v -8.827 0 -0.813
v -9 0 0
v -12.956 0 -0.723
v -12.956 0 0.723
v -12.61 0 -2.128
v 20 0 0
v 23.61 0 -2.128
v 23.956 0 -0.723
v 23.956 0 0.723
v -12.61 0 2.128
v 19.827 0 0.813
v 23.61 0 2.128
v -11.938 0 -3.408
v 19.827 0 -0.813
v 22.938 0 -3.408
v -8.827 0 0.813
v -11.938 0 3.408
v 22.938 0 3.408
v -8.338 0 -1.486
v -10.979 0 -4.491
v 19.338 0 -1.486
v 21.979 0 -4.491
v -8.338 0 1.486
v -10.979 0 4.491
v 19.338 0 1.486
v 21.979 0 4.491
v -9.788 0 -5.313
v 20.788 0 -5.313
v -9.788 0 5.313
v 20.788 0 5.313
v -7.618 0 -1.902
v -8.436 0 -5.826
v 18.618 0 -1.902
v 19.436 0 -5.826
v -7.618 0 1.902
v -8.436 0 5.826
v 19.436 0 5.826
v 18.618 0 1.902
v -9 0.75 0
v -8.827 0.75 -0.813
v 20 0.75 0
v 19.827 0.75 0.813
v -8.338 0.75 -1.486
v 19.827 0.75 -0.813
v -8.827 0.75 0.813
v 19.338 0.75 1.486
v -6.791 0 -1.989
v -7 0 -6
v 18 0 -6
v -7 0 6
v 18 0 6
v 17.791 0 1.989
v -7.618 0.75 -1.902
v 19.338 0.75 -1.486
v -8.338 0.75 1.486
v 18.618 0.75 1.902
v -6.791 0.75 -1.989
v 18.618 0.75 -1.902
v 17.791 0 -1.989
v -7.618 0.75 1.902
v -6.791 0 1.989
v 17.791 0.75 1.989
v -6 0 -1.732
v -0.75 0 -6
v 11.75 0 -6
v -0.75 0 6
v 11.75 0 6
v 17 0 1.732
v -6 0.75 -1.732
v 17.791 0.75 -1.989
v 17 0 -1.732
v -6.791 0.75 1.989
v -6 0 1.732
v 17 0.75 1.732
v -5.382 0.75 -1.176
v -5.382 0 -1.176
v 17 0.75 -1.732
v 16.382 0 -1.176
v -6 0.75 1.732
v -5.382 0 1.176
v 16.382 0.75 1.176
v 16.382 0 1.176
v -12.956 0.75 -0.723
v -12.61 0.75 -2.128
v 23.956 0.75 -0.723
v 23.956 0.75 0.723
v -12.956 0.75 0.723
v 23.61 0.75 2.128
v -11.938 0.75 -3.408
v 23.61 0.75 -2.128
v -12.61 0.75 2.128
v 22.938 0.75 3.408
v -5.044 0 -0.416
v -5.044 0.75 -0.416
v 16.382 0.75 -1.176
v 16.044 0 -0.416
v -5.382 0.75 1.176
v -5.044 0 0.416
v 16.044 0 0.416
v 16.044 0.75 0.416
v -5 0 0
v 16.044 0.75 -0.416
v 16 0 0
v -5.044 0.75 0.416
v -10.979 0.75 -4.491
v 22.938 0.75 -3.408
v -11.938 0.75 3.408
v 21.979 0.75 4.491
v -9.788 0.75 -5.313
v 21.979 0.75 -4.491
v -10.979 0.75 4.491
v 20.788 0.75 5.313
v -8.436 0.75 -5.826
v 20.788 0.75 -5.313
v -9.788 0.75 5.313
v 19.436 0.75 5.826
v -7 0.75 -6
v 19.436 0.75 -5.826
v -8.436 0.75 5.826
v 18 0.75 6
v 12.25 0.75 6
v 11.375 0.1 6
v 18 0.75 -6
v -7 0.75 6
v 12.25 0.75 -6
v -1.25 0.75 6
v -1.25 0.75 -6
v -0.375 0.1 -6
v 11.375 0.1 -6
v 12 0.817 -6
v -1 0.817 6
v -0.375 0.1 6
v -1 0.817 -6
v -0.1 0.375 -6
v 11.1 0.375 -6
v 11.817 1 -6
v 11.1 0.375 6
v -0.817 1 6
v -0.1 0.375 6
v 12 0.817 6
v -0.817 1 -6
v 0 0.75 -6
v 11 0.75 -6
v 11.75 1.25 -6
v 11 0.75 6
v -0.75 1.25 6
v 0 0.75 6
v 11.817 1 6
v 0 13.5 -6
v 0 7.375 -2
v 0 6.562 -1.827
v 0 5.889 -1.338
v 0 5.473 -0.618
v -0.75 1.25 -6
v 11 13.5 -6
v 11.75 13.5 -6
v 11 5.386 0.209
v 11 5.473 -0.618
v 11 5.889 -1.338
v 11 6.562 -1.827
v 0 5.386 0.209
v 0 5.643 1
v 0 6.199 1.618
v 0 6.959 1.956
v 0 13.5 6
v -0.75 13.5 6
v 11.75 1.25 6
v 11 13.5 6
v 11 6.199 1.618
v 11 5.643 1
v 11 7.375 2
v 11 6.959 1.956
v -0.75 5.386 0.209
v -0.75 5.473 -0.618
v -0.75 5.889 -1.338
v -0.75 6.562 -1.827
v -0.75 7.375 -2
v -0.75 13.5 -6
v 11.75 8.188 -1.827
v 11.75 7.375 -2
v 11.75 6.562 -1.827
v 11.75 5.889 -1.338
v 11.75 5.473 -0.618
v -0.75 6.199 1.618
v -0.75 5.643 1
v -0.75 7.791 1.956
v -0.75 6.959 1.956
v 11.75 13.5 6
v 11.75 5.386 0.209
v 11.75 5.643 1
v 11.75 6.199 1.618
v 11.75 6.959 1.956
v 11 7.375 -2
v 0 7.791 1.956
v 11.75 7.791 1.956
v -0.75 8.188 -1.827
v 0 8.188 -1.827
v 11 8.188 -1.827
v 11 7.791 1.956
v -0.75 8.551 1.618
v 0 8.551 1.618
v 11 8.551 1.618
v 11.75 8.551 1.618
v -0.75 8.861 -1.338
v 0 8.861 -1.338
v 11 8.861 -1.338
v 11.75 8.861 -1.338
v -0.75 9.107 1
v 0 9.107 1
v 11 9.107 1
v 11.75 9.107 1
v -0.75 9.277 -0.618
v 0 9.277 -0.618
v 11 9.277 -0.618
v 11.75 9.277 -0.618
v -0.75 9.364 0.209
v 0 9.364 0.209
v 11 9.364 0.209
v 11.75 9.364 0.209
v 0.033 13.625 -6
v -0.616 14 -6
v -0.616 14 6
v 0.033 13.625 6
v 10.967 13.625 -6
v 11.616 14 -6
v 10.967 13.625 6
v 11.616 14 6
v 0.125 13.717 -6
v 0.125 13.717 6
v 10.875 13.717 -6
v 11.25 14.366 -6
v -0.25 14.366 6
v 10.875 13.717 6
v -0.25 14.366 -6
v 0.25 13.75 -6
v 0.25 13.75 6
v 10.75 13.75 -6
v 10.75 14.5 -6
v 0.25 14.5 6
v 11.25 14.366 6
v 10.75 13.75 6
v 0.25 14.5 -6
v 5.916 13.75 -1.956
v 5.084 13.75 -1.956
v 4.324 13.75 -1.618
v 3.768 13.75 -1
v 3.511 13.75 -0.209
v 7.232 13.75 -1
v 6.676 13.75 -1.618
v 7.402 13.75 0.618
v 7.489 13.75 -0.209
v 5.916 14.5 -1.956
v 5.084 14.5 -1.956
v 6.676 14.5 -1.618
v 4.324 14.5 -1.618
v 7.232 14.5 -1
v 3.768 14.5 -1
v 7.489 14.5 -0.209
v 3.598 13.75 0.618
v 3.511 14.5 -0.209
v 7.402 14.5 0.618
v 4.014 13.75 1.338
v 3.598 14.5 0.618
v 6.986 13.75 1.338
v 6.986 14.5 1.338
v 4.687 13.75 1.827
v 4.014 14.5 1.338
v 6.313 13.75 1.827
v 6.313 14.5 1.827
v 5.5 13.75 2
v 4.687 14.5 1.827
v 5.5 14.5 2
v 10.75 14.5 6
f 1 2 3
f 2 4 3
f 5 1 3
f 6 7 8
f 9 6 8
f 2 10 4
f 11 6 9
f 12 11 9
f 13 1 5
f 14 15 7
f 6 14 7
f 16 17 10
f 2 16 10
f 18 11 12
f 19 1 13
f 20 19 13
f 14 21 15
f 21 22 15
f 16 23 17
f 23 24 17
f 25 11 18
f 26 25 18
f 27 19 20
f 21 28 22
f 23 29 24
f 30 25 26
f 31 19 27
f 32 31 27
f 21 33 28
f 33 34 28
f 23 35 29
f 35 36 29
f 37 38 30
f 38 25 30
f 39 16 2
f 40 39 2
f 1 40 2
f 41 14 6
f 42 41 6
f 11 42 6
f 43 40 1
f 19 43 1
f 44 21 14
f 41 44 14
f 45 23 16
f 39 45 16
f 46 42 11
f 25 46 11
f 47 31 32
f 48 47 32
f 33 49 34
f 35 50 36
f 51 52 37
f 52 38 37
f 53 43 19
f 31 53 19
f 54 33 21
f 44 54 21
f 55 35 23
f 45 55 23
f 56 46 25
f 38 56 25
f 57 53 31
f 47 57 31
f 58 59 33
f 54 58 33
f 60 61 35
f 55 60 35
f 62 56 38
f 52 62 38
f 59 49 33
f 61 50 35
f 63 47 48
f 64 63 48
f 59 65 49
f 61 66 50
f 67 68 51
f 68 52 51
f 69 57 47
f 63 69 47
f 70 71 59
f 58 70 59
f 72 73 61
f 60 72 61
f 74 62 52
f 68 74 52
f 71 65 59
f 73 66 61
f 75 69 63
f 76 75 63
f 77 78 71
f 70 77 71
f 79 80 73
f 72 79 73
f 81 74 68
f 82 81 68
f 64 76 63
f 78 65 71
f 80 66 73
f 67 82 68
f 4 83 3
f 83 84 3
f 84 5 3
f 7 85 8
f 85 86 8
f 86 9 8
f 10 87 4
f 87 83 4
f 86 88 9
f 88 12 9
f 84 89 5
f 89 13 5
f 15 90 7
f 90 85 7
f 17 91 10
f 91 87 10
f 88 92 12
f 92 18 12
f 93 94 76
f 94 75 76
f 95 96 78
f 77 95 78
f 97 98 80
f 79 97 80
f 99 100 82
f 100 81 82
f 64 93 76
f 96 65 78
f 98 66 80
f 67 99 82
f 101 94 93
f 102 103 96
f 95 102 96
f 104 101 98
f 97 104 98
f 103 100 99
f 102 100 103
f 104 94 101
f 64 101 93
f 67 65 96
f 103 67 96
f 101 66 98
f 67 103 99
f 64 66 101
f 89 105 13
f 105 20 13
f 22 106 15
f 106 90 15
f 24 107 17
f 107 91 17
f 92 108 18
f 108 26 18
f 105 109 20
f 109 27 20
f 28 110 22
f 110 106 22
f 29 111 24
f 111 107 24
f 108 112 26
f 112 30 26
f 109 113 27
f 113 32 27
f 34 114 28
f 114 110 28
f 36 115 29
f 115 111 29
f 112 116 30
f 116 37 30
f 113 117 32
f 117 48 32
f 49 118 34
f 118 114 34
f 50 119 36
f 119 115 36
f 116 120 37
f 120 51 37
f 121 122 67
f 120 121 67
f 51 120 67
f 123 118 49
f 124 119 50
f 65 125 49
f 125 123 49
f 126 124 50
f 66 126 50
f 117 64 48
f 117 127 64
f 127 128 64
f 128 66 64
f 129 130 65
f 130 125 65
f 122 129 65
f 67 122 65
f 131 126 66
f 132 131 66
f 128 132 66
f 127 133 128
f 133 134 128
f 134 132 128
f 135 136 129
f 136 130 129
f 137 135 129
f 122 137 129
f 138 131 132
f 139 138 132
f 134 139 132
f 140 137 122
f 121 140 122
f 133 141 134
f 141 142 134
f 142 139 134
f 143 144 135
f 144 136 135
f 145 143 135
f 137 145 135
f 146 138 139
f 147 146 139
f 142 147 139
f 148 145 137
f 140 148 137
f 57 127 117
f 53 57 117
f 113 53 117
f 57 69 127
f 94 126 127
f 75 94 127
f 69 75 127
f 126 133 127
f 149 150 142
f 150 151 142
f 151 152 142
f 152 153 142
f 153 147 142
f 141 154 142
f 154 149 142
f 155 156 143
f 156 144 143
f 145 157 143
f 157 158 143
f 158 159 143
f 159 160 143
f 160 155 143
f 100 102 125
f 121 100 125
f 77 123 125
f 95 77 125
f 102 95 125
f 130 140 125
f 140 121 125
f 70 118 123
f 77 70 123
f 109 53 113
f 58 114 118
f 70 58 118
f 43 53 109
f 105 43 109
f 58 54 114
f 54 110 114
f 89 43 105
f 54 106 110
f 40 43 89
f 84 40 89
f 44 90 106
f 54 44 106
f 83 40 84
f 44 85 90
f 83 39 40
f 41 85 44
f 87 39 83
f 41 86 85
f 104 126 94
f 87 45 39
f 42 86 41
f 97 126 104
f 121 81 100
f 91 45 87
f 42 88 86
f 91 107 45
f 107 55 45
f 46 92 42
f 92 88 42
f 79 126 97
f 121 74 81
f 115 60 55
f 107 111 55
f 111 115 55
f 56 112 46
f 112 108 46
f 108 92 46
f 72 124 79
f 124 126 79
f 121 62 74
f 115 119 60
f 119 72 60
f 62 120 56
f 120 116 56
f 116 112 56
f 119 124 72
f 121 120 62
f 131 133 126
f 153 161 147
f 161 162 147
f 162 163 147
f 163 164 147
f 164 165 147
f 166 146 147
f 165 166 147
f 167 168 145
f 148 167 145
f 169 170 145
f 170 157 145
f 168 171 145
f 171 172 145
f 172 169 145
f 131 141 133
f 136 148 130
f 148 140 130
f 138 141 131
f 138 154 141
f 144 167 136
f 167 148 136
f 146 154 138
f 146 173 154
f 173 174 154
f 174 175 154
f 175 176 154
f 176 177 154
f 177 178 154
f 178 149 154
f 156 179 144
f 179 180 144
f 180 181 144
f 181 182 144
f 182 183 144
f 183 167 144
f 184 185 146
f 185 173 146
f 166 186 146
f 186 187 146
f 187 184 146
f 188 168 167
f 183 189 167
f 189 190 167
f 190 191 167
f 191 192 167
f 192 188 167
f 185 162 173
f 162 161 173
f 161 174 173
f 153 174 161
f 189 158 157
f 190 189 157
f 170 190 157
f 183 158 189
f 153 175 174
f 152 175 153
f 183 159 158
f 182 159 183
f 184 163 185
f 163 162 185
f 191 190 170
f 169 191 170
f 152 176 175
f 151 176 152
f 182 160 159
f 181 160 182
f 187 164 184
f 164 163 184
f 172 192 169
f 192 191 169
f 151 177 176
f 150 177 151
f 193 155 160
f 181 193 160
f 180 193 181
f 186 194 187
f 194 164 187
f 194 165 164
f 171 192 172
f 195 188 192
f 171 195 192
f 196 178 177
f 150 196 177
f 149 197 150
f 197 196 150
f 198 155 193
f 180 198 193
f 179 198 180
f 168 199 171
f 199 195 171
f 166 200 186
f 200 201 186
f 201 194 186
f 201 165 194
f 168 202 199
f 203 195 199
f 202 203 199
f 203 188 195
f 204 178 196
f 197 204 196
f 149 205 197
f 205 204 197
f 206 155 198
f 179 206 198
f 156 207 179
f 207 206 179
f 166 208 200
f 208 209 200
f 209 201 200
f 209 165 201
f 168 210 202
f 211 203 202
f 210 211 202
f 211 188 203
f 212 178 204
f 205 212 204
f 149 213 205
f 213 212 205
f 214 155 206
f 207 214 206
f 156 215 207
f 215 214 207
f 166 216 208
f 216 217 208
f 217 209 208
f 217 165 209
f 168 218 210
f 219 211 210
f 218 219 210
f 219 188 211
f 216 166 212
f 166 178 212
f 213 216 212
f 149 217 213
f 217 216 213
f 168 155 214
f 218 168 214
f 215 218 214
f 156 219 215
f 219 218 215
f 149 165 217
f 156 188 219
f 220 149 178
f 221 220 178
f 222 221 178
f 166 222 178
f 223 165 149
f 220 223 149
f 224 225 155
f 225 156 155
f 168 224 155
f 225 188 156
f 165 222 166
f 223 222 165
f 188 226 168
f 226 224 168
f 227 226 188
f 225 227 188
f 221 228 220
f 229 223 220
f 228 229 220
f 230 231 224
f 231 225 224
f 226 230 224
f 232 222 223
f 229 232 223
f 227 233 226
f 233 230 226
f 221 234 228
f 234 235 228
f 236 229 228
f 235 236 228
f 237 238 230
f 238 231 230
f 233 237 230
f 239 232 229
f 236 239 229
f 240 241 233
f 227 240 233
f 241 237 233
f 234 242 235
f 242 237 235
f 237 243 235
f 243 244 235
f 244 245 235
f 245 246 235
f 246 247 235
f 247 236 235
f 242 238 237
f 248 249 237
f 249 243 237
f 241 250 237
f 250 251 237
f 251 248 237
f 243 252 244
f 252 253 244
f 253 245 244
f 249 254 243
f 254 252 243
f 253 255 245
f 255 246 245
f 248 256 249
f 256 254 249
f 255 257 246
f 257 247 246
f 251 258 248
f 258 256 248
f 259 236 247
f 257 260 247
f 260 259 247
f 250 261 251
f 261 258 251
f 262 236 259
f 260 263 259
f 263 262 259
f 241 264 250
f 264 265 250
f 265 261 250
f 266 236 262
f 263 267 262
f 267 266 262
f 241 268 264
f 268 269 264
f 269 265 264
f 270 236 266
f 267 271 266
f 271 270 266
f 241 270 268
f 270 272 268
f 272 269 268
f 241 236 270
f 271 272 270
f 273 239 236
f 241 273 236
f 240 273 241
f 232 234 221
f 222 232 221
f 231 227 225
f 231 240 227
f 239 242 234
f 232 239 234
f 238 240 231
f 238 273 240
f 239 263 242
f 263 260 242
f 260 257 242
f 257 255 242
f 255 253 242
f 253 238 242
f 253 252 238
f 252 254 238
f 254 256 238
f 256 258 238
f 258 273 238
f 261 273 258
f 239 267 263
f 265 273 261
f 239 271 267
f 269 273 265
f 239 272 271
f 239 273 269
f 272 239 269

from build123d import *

# Parameters (mm, degrees)
ESTRUSIONE_SOTTILE1_DEPTH    = 6
RACCORDO3_R                  = 6
SCHIZZO4_R                   = 2
TAGLIO_ESTRUSIONE1_DEPTH     = 0.75
RACCORDO1_R                  = 0.75
RACCORDO2_R                  = 0.5
TAGLIO_ESTRUSIONE2_DEPTH     = 0.75
SCHIZZO6_R                   = 2
ESTRUSIONE_ESTRUSIONE1_DEPTH = 0.75
ESTRUSIONE_ESTRUSIONE3_DEPTH = 6
RACCORDO3_OF_SPECCHIA2_R     = 6
RACCORDO1_OF_SPECCHIA2_R     = 0.75
RACCORDO2_OF_SPECCHIA2_R     = 0.5
SCHIZZO8_R                   = 2
TAGLIO_ESTRUSIONE3_DEPTH     = 0.75
SCHIZZO9_R                   = 2
TAGLIO_ESTRUSIONE4_DEPTH     = 19


with BuildPart() as part:
    # Schizzo1 → Estrusione-Sottile1 (new, symmetric)
    with BuildSketch(Plane.XY):
        Polygon((0, 13), (0, 0), (-11, 0), (-11, 0.75), (-0.75, 0.75), (-0.75, 13), align=None)
    estrusione_sottile1 = extrude(amount=ESTRUSIONE_SOTTILE1_DEPTH, both=True)

    # Raccordo3
    raccordo3_edges = [part.edges().sort_by_distance(p)[0] for p in [
        (-11, 0.375, 6),
        (-11, 0.375, -6),
        (-0.375, 13, -6),
        (-0.375, 13, 6),
    ]]
    fillet(raccordo3_edges, radius=RACCORDO3_R - 0.0001)  # a hair under: the kernel refuses the full size

    # Schizzo4 → Taglio-Estrusione1 (cut)
    with BuildSketch(Plane(origin=(0, 0.75, 0), x_dir=(1, 0, 0), z_dir=(0, 1, 0))):
        with Locations(Location((-7, 0, 0), (0, 0, 180))):
            Circle(SCHIZZO4_R)
    taglio_estrusione1 = extrude(amount=-TAGLIO_ESTRUSIONE1_DEPTH, mode=Mode.SUBTRACT)

    # Raccordo1
    raccordo1_edges = [part.edges().sort_by_distance(p)[0] for p in [
        (0, 0, 0),
    ]]
    fillet(raccordo1_edges, radius=RACCORDO1_R)

    # Raccordo2
    raccordo2_edges = [part.edges().sort_by_distance(p)[0] for p in [
        (-0.75, 0.75, 0),
    ]]
    fillet(raccordo2_edges, radius=RACCORDO2_R)

    # Schizzo5 → Taglio-Estrusione2 (cut)
    with BuildSketch(Plane.ZY.offset(0.75)):
        with BuildLine():
            Line((2, 9), (2, 3.5))
            ThreePointArc((2, 3.5), (0, 1.5), (-2, 3.5))
            Line((-2, 3.5), (-2, 9))
            ThreePointArc((-2, 9), (0, 11), (2, 9))
        make_face()
    extrude(amount=-TAGLIO_ESTRUSIONE2_DEPTH, mode=Mode.SUBTRACT)

    # Schizzo6 → Estrusione-Estrusione1 (add)
    with BuildSketch(Plane(origin=(0, 0.75, 0), x_dir=(1, 0, 0), z_dir=(0, 1, 0))):
        with BuildLine():
            Line((-4.125, -6), (-7, -6))
            ThreePointArc((-7, -6), (-13, 0), (-7, 6))
            Line((-7, 6), (-4.125, 6))
            Line((-4.125, 6), (-4.125, -6))
        make_face()
        with Locations(Location((-7, 0, 0), (0, 0, 180))):
            Circle(SCHIZZO6_R, mode=Mode.SUBTRACT)
    estrusione_estrusione1 = extrude(amount=-ESTRUSIONE_ESTRUSIONE1_DEPTH)

    # Schizzo7 → Estrusione-Estrusione3 (add, symmetric)
    with BuildSketch(Plane.XY):
        with BuildLine():
            Line((-0.75, 13), (-0.75, 7))
            Line((-0.75, 7), (-0.75, 1.25))
            ThreePointArc((-0.75, 1.25), (-0.896446609, 0.896446609), (-1.25, 0.75))
            Line((-1.25, 0.75), (-4.125, 0.75))
            Line((-4.125, 0.75), (-4.125, 0))
            Line((-4.125, 0), (-0.75, 0))
            ThreePointArc((-0.75, 0), (-0.219669914, 0.219669914), (0, 0.75))
            Line((0, 0.75), (0, 7))
            Line((0, 7), (0, 13))
            Line((0, 13), (0, 13.5))
            ThreePointArc((0, 13.5), (0.073223305, 13.676776695), (0.25, 13.75))
            Line((0.25, 13.75), (5.5, 13.75))
            Line((5.5, 13.75), (5.5, 14.5))
            Line((5.5, 14.5), (0.25, 14.5))
            ThreePointArc((0.25, 14.5), (-0.457106781, 14.207106781), (-0.75, 13.5))
            Line((-0.75, 13.5), (-0.75, 13))
        make_face()
    estrusione_estrusione3 = extrude(amount=ESTRUSIONE_ESTRUSIONE3_DEPTH, both=True)


with BuildPart() as specchia2_1:
    # Specchia2: Estrusione-Sottile1 across plane
    add(estrusione_sottile1.mirror(Plane(origin=(5.5, 14.5, 6), x_dir=(0, 0, 1), z_dir=(-1, 0, 0))))

    # Specchia2 2: Taglio-Estrusione1 across plane
    add(taglio_estrusione1.mirror(Plane(origin=(5.5, 14.5, 6), x_dir=(0, 0, 1), z_dir=(-1, 0, 0))), mode=Mode.SUBTRACT)

    # Raccordo3 of Specchia2
    raccordo3_of_specchia2_edges = [specchia2_1.edges().sort_by_distance(p)[0] for p in [
        (22, 0.375, 6),
        (22, 0.375, -6),
        (11.375, 13, -6),
        (11.375, 13, 6),
    ]]
    fillet(raccordo3_of_specchia2_edges, radius=RACCORDO3_OF_SPECCHIA2_R - 0.0001)  # a hair under: the kernel refuses the full size

    # Raccordo1 of Specchia2
    raccordo1_of_specchia2_edges = [specchia2_1.edges().sort_by_distance(p)[0] for p in [
        (11, 0, 0),
    ]]
    fillet(raccordo1_of_specchia2_edges, radius=RACCORDO1_OF_SPECCHIA2_R)

    # Raccordo2 of Specchia2
    raccordo2_of_specchia2_edges = [specchia2_1.edges().sort_by_distance(p)[0] for p in [
        (11.75, 0.75, 0),
    ]]
    fillet(raccordo2_of_specchia2_edges, radius=RACCORDO2_OF_SPECCHIA2_R)


with BuildPart() as specchia2_3_1:
    # Specchia2 3: Estrusione-Estrusione1, Estrusione-Estrusione3 across plane
    add(estrusione_estrusione1.mirror(Plane(origin=(5.5, 14.5, 6), x_dir=(0, 0, 1), z_dir=(-1, 0, 0))))
    add(estrusione_estrusione3.mirror(Plane(origin=(5.5, 14.5, 6), x_dir=(0, 0, 1), z_dir=(-1, 0, 0))))


with BuildPart() as part_1:
    add(part.part)

    # Specchia2 united with what the copies to: union Specchia2_1, Specchia2 3_1
    add(specchia2_1.part)
    add(specchia2_3_1.part)

    # Schizzo8 → Taglio-Estrusione3 (cut)
    with BuildSketch(Plane(origin=(0, 14.5, 0), x_dir=(1, 0, 0), z_dir=(0, 1, 0))):
        with Locations(Location((5.5, 0, 0), (0, 0, 270))):
            Circle(SCHIZZO8_R)
    extrude(amount=-TAGLIO_ESTRUSIONE3_DEPTH, mode=Mode.SUBTRACT)

    # Schizzo9 → Taglio-Estrusione4 (cut)
    with BuildSketch(Plane(origin=(11.75, 0, 0), x_dir=(0, 0, -1), z_dir=(1, 0, 0))):
        with Locations((0, 7.375)):
            Circle(SCHIZZO9_R)
    extrude(amount=-TAGLIO_ESTRUSIONE4_DEPTH, mode=Mode.SUBTRACT)


solid = part_1.part
